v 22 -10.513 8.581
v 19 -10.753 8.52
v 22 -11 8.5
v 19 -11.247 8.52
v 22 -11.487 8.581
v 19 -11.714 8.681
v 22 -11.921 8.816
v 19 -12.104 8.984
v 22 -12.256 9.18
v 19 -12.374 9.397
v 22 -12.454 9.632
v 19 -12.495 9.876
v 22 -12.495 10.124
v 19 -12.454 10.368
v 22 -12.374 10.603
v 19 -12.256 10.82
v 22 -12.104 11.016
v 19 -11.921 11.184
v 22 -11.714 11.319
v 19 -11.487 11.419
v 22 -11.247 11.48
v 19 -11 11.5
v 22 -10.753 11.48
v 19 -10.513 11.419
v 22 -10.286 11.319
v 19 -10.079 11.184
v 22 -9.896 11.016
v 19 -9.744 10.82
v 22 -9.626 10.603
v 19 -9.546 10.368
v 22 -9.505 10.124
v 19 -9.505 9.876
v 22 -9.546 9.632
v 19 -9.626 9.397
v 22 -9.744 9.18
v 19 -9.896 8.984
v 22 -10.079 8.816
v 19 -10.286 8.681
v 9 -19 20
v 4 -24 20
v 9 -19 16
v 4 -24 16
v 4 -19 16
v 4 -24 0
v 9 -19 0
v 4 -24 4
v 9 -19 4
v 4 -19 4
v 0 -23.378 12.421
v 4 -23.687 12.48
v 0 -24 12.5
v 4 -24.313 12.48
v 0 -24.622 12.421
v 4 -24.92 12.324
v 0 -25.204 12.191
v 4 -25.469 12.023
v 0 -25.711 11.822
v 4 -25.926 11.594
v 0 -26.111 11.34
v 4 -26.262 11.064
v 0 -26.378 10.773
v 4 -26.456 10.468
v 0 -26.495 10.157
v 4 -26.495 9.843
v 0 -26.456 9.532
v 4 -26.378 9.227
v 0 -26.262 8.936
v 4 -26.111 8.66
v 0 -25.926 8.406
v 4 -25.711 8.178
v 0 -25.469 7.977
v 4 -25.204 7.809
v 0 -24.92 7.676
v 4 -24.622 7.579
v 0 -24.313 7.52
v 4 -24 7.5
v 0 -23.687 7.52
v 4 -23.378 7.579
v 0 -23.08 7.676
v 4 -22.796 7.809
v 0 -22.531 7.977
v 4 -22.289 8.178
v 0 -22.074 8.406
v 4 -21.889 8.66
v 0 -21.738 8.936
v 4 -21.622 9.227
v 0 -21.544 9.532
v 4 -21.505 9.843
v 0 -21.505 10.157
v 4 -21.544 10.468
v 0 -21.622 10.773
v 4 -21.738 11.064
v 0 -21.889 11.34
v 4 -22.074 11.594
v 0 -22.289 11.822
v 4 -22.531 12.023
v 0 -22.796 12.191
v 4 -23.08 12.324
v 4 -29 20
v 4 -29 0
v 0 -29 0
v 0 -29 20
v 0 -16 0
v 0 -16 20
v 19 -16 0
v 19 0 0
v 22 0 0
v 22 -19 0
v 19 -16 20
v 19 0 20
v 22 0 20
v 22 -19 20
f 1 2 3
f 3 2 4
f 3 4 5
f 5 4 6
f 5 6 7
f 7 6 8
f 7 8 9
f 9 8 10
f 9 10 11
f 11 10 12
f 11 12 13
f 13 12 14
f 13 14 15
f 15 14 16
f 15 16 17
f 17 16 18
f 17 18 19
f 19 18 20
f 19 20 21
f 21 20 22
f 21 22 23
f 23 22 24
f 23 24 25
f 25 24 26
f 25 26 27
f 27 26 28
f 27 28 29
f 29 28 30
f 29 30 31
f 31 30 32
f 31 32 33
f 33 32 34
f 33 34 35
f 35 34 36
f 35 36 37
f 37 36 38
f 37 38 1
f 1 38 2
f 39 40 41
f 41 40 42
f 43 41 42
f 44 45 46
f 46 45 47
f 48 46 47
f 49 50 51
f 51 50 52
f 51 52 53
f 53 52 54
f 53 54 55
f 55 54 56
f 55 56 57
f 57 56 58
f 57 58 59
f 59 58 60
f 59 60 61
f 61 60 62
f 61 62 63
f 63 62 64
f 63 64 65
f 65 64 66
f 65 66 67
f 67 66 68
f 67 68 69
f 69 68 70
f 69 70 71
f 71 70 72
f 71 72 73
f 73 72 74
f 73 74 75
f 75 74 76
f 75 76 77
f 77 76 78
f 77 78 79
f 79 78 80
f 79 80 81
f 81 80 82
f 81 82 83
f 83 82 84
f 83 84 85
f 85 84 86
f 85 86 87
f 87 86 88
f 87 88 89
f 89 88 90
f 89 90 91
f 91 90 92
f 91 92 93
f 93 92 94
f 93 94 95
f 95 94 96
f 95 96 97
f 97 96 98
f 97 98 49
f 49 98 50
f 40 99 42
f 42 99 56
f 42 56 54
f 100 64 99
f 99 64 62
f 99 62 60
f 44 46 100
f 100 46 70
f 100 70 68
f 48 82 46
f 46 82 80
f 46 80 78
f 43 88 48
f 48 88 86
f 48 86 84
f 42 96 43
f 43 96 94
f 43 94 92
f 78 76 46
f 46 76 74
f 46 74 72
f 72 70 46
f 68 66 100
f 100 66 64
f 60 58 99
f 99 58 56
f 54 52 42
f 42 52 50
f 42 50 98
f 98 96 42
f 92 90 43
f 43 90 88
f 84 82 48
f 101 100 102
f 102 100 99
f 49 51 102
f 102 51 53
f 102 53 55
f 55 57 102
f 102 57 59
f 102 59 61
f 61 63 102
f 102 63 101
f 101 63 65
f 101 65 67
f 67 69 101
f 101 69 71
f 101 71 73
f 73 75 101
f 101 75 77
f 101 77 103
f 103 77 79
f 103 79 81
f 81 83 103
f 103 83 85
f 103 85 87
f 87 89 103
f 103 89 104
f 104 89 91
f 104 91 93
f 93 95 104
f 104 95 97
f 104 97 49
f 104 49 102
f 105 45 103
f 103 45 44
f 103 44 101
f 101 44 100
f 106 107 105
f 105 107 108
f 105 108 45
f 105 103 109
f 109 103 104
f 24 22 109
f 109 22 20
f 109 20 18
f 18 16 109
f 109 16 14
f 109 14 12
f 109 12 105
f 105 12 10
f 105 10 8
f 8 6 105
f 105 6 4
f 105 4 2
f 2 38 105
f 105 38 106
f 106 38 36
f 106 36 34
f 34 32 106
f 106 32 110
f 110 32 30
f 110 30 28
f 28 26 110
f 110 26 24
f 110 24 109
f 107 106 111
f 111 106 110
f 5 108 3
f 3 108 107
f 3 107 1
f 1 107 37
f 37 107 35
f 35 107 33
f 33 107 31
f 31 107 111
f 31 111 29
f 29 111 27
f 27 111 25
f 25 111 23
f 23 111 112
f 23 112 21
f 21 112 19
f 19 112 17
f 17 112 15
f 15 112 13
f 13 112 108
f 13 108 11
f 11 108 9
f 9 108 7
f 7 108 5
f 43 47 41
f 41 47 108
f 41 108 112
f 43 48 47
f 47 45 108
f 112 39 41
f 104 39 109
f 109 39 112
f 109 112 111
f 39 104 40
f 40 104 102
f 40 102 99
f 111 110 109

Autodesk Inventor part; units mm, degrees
ref_plane "YZ Plane" through (0, 0, 0) normal (1, 0, 0) x (0, 1, 0)
ref_plane "XZ Plane" through (0, 0, 0) normal (0, 1, 0) x (-1, 0, 0)
ref_plane "XY Plane" through (0, 0, 0) normal (0, 0, 1) x (1, 0, 0)
sketch "Sketch1" plane through (0, 0, 0) normal (0, 0, 1) x (1, 0, 0)
  line L0 (0, 0) -> (22, 0)
  line L1 (22, 0) -> (22, -19)
  line L2 (22, -19) -> (0, -19)
  line L3 (0, -19) -> (0, 0)
  line L4 (3, 0) -> (19, 0)
  line L5 (19, 0) -> (19, -16)
  line L6 (19, -16) -> (3, -16)
  line L7 (3, -16) -> (3, 0)
  dimension "d0" = 22
  dimension "d1" = 19
  dimension "d2" = 3
  dimension "d3" = 3
  dimension "d4" = 3
extrude "Extrusion1" add sketch "Sketch1" along normal blind 20 contours L0 L7 L6 L5 L1 L2 L3
sketch "Sketch4" plane through (3, -16, 0) normal (1, 0, 0) x (0, 0, -1)
  line L0 (-20, 0) -> (-20, 16) projected
  line L1 (0, 0) -> (-20, 0)
  line L2 (-20, 0) -> (-20, 16)
  line L3 (-20, 16) -> (0, 16)
  line L4 (0, 16) -> (0, 0)
extrude "Extrusion4" cut sketch "Sketch4" against normal through all
sketch "Sketch5" plane through (0, 0, 0) normal (0, 0, -1) x (-1, 0, 0)
  line L0 (0, -19) -> (-22, -19) projected
  line L1 (0, -19) -> (-4, -19)
  line L2 (-4, -19) -> (-4, -29)
  line L3 (-4, -29) -> (0, -29)
  line L4 (0, -29) -> (0, -19)
  point P0 (0, 0)
  dimension "d17" = 4
  dimension "d18" = 10
extrude "Extrusion5" add sketch "Sketch5" against normal blind 20
sketch "Sketch6" plane through (4, -29, 0) normal (1, 0, 0) x (0, 0, -1)
  line L0 (0, 10) -> (-20, 10) projected
  line L1 (0, 10) -> (0, 0) projected
  circle A0 centre (-10, 5) radius 2.5
  point P0 (0, 29)
  dimension "d21" = 5
  dimension "d22" = 10
  dimension "d23" = 5
extrude "Extrusion6" cut sketch "Sketch6" against normal through all
sketch "Sketch7" plane through (0, 0, 0) normal (0, 0, -1) x (-1, 0, 0)
  line L0 (-4, -19) -> (-22, -19) projected
  line L1 (-4, -29) -> (-4, -19) projected
  line L2 (-9, -19) -> (-4, -24)
  point P0 (0, 0)
  dimension "d26" = 5
  dimension "d27" = 5
extrude "Extrusion7" add sketch "Sketch7" against normal blind 4
sketch "Sketch8" plane through (0, 0, 20) normal (0, 0, 1) x (1, 0, 0)
  line L0 (4, -19) -> (22, -19) projected
  line L1 (4, -29) -> (4, -19) projected
  line L2 (9, -19) -> (4, -24)
  point P0 (0, 0)
  dimension "d30" = 5
  dimension "d31" = 5
extrude "Extrusion8" add sketch "Sketch8" against normal blind 4
sketch "Sketch9" plane through (19, -16, 0) normal (-1, 0, 0) x (0, 0, 1)
  line L0 (0, 16) -> (0, 0) projected
  line L1 (0, 0) -> (20, 0) projected
  circle A0 centre (10, 5) radius 1.5
  dimension "d34" = 10
  dimension "d35" = 5
  dimension "d36" = 3
extrude "Extrusion9" cut sketch "Sketch9" against normal through all
equation "\"d3\" = d2"
equation "\"d4\" = d2"
equation "\"d27\" = d26"
equation "\"d30\" = d26"
equation "\"d31\" = d30"
properties part number "LED strip mount v03"
